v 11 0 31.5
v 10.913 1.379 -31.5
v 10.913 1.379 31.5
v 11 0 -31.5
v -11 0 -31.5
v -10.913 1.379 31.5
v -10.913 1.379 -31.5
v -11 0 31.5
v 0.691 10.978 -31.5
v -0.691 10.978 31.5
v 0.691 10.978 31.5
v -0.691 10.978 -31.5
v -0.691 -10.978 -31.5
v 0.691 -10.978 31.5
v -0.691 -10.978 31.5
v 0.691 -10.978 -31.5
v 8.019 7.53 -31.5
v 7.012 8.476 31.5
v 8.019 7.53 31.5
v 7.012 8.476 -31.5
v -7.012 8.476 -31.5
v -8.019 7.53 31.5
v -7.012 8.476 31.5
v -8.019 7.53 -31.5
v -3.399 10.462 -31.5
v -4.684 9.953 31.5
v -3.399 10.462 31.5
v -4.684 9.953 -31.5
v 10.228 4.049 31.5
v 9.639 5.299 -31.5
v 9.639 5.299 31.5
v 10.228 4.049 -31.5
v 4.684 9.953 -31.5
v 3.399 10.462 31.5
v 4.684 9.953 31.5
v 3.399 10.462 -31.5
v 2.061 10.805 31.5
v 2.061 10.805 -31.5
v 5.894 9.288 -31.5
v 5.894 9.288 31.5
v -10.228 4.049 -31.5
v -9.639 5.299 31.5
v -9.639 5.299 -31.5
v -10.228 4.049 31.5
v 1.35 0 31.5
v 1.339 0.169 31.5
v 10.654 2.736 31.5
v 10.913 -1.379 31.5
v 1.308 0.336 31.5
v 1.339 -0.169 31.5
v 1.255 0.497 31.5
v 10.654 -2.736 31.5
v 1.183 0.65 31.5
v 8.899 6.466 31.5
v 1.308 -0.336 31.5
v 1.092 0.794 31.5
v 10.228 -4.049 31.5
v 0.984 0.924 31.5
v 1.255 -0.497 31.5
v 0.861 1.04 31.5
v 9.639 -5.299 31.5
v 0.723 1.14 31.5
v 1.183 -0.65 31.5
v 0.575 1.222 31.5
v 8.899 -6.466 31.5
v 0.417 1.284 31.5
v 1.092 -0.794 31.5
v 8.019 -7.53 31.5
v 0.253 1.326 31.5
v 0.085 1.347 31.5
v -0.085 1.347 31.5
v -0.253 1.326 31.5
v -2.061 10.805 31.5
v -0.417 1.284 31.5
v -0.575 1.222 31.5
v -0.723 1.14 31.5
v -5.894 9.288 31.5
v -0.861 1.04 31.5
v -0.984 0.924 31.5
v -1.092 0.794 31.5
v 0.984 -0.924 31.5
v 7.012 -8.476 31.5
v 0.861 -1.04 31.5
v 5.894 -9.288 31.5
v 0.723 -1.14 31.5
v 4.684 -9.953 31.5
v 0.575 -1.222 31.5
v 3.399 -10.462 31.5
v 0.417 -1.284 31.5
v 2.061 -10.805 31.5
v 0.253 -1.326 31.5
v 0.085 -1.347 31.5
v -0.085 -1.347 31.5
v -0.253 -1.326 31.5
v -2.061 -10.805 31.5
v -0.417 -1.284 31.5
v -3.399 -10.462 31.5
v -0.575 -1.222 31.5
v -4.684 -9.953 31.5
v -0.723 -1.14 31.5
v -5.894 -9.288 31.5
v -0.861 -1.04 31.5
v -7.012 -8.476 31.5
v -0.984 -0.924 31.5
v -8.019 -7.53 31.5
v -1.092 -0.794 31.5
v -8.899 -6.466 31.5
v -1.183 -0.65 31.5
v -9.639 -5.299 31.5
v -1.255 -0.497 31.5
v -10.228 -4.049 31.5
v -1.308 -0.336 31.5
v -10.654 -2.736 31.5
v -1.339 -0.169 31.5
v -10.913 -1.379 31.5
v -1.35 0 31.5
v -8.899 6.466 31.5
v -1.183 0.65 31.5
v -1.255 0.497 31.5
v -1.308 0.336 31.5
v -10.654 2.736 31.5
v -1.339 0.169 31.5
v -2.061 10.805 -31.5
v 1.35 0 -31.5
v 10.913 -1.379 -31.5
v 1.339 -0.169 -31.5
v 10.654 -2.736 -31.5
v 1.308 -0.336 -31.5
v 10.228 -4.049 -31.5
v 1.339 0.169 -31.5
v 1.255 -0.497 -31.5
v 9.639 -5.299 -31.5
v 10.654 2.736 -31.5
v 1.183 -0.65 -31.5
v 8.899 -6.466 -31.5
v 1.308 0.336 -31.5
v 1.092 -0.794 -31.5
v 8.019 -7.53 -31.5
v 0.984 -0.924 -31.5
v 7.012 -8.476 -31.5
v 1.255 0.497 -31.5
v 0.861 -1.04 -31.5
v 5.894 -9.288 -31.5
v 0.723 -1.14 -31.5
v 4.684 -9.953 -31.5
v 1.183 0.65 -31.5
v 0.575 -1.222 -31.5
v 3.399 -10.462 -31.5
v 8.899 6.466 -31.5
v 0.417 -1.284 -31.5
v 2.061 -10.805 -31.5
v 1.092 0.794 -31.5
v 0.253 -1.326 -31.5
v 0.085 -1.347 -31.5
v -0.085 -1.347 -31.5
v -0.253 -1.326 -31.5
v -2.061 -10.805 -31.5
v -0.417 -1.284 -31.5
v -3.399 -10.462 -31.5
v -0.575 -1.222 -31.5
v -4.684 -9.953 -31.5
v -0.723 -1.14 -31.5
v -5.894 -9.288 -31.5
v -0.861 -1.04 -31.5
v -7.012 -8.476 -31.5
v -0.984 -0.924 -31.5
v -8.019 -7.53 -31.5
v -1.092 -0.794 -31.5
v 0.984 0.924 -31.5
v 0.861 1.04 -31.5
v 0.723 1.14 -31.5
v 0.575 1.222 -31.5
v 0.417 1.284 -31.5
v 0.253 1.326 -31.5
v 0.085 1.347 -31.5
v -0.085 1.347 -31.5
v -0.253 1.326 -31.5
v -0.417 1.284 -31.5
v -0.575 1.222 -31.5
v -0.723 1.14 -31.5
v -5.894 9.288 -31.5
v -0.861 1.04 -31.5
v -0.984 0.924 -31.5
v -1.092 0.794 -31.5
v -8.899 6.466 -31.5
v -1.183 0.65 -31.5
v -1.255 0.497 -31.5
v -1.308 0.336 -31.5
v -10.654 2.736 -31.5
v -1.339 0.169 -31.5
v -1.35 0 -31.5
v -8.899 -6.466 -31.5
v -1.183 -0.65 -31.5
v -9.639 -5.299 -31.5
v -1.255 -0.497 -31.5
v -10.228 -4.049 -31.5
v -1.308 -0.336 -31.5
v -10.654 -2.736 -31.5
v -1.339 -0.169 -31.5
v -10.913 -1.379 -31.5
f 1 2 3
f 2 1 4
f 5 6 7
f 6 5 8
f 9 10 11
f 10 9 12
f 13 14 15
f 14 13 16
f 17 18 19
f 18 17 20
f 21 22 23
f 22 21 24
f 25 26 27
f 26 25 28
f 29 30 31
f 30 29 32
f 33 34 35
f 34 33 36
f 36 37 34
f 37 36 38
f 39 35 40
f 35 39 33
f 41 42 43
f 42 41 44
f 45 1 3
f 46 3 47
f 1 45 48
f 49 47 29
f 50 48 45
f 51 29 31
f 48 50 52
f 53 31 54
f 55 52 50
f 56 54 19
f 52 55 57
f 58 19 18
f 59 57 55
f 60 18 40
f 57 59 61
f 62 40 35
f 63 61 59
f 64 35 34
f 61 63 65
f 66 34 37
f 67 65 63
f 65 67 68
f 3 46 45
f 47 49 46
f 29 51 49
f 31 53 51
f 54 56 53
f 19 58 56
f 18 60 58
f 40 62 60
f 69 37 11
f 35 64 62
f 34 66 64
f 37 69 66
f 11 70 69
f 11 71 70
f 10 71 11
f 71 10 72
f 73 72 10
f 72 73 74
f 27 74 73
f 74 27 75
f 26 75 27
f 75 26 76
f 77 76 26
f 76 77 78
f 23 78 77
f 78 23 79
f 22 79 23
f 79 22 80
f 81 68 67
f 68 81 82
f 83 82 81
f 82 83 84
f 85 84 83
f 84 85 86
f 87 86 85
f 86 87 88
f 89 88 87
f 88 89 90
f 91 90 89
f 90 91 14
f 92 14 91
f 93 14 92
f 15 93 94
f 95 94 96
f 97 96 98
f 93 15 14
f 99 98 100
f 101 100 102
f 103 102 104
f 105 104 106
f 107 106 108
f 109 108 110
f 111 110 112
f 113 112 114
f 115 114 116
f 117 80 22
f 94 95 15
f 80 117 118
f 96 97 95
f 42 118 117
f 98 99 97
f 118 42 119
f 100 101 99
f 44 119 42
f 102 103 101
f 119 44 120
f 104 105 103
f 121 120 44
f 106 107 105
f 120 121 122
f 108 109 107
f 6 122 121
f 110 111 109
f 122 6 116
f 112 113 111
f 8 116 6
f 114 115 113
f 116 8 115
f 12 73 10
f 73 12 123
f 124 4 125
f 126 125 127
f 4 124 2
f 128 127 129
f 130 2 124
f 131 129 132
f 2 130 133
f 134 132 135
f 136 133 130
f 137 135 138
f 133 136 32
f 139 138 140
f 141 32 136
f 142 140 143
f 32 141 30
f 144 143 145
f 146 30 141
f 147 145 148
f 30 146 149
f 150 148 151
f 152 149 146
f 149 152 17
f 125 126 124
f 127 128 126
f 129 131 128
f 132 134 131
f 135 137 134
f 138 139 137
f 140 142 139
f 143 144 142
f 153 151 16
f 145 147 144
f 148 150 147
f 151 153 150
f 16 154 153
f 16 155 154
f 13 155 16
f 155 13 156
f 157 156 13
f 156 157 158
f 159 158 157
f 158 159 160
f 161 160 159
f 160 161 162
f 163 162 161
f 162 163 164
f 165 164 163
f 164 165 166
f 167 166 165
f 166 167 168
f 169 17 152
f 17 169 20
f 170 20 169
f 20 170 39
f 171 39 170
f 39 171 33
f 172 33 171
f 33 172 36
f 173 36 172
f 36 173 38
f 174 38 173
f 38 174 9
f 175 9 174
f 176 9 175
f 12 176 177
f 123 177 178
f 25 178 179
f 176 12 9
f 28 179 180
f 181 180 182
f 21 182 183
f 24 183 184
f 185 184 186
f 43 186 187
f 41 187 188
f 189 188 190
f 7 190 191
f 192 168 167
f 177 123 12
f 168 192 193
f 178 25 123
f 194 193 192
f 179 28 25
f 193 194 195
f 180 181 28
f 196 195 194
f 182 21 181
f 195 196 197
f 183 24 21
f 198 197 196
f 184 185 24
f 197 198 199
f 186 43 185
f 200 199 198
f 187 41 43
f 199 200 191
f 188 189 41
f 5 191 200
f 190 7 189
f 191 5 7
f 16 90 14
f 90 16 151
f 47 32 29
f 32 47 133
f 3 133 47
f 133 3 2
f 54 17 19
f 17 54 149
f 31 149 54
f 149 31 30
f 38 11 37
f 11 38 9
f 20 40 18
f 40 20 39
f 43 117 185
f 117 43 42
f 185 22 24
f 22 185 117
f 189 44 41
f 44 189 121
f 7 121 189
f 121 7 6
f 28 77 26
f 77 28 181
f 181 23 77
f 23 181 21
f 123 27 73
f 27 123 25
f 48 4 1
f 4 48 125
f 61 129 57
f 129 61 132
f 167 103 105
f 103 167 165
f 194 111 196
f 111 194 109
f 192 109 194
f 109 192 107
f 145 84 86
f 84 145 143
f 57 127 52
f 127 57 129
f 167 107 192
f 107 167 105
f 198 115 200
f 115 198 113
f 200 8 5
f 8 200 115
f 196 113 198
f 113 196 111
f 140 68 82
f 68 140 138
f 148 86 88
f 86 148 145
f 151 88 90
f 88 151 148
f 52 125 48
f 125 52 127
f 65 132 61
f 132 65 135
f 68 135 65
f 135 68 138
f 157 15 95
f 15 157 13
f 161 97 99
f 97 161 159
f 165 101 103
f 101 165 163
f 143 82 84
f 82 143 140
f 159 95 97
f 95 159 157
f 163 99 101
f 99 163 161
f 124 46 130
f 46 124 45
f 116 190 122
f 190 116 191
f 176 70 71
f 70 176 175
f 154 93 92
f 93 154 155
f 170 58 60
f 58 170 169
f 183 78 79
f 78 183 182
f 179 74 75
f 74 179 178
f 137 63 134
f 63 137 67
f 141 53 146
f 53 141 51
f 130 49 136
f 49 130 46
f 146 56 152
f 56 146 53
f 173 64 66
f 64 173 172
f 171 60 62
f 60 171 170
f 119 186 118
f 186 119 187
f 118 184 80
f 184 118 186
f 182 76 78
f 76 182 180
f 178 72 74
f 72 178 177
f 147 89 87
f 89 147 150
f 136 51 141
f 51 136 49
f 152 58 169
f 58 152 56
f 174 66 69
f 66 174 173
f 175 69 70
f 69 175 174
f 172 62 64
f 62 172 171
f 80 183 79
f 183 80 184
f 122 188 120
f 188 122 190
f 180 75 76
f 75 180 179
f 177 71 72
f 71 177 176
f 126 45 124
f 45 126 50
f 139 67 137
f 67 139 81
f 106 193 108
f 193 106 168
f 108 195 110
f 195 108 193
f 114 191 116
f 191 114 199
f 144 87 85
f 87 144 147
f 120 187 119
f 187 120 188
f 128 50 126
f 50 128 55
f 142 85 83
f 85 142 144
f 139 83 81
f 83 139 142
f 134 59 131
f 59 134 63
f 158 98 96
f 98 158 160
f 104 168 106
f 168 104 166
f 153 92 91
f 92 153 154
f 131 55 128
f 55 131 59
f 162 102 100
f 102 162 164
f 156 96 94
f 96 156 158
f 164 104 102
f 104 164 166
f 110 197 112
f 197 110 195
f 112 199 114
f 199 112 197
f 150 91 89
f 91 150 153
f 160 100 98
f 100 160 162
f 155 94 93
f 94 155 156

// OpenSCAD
$fn = 50;


difference() {
	union() {
		translate(v = [0, 0, -31.5000000000]) {
			cylinder(h = 63, r = 11.0000000000);
		}
	}
	union() {
		translate(v = [0, 0, -100.0000000000]) {
			cylinder(h = 200, r = 1.3500000000);
		}
	}
}
